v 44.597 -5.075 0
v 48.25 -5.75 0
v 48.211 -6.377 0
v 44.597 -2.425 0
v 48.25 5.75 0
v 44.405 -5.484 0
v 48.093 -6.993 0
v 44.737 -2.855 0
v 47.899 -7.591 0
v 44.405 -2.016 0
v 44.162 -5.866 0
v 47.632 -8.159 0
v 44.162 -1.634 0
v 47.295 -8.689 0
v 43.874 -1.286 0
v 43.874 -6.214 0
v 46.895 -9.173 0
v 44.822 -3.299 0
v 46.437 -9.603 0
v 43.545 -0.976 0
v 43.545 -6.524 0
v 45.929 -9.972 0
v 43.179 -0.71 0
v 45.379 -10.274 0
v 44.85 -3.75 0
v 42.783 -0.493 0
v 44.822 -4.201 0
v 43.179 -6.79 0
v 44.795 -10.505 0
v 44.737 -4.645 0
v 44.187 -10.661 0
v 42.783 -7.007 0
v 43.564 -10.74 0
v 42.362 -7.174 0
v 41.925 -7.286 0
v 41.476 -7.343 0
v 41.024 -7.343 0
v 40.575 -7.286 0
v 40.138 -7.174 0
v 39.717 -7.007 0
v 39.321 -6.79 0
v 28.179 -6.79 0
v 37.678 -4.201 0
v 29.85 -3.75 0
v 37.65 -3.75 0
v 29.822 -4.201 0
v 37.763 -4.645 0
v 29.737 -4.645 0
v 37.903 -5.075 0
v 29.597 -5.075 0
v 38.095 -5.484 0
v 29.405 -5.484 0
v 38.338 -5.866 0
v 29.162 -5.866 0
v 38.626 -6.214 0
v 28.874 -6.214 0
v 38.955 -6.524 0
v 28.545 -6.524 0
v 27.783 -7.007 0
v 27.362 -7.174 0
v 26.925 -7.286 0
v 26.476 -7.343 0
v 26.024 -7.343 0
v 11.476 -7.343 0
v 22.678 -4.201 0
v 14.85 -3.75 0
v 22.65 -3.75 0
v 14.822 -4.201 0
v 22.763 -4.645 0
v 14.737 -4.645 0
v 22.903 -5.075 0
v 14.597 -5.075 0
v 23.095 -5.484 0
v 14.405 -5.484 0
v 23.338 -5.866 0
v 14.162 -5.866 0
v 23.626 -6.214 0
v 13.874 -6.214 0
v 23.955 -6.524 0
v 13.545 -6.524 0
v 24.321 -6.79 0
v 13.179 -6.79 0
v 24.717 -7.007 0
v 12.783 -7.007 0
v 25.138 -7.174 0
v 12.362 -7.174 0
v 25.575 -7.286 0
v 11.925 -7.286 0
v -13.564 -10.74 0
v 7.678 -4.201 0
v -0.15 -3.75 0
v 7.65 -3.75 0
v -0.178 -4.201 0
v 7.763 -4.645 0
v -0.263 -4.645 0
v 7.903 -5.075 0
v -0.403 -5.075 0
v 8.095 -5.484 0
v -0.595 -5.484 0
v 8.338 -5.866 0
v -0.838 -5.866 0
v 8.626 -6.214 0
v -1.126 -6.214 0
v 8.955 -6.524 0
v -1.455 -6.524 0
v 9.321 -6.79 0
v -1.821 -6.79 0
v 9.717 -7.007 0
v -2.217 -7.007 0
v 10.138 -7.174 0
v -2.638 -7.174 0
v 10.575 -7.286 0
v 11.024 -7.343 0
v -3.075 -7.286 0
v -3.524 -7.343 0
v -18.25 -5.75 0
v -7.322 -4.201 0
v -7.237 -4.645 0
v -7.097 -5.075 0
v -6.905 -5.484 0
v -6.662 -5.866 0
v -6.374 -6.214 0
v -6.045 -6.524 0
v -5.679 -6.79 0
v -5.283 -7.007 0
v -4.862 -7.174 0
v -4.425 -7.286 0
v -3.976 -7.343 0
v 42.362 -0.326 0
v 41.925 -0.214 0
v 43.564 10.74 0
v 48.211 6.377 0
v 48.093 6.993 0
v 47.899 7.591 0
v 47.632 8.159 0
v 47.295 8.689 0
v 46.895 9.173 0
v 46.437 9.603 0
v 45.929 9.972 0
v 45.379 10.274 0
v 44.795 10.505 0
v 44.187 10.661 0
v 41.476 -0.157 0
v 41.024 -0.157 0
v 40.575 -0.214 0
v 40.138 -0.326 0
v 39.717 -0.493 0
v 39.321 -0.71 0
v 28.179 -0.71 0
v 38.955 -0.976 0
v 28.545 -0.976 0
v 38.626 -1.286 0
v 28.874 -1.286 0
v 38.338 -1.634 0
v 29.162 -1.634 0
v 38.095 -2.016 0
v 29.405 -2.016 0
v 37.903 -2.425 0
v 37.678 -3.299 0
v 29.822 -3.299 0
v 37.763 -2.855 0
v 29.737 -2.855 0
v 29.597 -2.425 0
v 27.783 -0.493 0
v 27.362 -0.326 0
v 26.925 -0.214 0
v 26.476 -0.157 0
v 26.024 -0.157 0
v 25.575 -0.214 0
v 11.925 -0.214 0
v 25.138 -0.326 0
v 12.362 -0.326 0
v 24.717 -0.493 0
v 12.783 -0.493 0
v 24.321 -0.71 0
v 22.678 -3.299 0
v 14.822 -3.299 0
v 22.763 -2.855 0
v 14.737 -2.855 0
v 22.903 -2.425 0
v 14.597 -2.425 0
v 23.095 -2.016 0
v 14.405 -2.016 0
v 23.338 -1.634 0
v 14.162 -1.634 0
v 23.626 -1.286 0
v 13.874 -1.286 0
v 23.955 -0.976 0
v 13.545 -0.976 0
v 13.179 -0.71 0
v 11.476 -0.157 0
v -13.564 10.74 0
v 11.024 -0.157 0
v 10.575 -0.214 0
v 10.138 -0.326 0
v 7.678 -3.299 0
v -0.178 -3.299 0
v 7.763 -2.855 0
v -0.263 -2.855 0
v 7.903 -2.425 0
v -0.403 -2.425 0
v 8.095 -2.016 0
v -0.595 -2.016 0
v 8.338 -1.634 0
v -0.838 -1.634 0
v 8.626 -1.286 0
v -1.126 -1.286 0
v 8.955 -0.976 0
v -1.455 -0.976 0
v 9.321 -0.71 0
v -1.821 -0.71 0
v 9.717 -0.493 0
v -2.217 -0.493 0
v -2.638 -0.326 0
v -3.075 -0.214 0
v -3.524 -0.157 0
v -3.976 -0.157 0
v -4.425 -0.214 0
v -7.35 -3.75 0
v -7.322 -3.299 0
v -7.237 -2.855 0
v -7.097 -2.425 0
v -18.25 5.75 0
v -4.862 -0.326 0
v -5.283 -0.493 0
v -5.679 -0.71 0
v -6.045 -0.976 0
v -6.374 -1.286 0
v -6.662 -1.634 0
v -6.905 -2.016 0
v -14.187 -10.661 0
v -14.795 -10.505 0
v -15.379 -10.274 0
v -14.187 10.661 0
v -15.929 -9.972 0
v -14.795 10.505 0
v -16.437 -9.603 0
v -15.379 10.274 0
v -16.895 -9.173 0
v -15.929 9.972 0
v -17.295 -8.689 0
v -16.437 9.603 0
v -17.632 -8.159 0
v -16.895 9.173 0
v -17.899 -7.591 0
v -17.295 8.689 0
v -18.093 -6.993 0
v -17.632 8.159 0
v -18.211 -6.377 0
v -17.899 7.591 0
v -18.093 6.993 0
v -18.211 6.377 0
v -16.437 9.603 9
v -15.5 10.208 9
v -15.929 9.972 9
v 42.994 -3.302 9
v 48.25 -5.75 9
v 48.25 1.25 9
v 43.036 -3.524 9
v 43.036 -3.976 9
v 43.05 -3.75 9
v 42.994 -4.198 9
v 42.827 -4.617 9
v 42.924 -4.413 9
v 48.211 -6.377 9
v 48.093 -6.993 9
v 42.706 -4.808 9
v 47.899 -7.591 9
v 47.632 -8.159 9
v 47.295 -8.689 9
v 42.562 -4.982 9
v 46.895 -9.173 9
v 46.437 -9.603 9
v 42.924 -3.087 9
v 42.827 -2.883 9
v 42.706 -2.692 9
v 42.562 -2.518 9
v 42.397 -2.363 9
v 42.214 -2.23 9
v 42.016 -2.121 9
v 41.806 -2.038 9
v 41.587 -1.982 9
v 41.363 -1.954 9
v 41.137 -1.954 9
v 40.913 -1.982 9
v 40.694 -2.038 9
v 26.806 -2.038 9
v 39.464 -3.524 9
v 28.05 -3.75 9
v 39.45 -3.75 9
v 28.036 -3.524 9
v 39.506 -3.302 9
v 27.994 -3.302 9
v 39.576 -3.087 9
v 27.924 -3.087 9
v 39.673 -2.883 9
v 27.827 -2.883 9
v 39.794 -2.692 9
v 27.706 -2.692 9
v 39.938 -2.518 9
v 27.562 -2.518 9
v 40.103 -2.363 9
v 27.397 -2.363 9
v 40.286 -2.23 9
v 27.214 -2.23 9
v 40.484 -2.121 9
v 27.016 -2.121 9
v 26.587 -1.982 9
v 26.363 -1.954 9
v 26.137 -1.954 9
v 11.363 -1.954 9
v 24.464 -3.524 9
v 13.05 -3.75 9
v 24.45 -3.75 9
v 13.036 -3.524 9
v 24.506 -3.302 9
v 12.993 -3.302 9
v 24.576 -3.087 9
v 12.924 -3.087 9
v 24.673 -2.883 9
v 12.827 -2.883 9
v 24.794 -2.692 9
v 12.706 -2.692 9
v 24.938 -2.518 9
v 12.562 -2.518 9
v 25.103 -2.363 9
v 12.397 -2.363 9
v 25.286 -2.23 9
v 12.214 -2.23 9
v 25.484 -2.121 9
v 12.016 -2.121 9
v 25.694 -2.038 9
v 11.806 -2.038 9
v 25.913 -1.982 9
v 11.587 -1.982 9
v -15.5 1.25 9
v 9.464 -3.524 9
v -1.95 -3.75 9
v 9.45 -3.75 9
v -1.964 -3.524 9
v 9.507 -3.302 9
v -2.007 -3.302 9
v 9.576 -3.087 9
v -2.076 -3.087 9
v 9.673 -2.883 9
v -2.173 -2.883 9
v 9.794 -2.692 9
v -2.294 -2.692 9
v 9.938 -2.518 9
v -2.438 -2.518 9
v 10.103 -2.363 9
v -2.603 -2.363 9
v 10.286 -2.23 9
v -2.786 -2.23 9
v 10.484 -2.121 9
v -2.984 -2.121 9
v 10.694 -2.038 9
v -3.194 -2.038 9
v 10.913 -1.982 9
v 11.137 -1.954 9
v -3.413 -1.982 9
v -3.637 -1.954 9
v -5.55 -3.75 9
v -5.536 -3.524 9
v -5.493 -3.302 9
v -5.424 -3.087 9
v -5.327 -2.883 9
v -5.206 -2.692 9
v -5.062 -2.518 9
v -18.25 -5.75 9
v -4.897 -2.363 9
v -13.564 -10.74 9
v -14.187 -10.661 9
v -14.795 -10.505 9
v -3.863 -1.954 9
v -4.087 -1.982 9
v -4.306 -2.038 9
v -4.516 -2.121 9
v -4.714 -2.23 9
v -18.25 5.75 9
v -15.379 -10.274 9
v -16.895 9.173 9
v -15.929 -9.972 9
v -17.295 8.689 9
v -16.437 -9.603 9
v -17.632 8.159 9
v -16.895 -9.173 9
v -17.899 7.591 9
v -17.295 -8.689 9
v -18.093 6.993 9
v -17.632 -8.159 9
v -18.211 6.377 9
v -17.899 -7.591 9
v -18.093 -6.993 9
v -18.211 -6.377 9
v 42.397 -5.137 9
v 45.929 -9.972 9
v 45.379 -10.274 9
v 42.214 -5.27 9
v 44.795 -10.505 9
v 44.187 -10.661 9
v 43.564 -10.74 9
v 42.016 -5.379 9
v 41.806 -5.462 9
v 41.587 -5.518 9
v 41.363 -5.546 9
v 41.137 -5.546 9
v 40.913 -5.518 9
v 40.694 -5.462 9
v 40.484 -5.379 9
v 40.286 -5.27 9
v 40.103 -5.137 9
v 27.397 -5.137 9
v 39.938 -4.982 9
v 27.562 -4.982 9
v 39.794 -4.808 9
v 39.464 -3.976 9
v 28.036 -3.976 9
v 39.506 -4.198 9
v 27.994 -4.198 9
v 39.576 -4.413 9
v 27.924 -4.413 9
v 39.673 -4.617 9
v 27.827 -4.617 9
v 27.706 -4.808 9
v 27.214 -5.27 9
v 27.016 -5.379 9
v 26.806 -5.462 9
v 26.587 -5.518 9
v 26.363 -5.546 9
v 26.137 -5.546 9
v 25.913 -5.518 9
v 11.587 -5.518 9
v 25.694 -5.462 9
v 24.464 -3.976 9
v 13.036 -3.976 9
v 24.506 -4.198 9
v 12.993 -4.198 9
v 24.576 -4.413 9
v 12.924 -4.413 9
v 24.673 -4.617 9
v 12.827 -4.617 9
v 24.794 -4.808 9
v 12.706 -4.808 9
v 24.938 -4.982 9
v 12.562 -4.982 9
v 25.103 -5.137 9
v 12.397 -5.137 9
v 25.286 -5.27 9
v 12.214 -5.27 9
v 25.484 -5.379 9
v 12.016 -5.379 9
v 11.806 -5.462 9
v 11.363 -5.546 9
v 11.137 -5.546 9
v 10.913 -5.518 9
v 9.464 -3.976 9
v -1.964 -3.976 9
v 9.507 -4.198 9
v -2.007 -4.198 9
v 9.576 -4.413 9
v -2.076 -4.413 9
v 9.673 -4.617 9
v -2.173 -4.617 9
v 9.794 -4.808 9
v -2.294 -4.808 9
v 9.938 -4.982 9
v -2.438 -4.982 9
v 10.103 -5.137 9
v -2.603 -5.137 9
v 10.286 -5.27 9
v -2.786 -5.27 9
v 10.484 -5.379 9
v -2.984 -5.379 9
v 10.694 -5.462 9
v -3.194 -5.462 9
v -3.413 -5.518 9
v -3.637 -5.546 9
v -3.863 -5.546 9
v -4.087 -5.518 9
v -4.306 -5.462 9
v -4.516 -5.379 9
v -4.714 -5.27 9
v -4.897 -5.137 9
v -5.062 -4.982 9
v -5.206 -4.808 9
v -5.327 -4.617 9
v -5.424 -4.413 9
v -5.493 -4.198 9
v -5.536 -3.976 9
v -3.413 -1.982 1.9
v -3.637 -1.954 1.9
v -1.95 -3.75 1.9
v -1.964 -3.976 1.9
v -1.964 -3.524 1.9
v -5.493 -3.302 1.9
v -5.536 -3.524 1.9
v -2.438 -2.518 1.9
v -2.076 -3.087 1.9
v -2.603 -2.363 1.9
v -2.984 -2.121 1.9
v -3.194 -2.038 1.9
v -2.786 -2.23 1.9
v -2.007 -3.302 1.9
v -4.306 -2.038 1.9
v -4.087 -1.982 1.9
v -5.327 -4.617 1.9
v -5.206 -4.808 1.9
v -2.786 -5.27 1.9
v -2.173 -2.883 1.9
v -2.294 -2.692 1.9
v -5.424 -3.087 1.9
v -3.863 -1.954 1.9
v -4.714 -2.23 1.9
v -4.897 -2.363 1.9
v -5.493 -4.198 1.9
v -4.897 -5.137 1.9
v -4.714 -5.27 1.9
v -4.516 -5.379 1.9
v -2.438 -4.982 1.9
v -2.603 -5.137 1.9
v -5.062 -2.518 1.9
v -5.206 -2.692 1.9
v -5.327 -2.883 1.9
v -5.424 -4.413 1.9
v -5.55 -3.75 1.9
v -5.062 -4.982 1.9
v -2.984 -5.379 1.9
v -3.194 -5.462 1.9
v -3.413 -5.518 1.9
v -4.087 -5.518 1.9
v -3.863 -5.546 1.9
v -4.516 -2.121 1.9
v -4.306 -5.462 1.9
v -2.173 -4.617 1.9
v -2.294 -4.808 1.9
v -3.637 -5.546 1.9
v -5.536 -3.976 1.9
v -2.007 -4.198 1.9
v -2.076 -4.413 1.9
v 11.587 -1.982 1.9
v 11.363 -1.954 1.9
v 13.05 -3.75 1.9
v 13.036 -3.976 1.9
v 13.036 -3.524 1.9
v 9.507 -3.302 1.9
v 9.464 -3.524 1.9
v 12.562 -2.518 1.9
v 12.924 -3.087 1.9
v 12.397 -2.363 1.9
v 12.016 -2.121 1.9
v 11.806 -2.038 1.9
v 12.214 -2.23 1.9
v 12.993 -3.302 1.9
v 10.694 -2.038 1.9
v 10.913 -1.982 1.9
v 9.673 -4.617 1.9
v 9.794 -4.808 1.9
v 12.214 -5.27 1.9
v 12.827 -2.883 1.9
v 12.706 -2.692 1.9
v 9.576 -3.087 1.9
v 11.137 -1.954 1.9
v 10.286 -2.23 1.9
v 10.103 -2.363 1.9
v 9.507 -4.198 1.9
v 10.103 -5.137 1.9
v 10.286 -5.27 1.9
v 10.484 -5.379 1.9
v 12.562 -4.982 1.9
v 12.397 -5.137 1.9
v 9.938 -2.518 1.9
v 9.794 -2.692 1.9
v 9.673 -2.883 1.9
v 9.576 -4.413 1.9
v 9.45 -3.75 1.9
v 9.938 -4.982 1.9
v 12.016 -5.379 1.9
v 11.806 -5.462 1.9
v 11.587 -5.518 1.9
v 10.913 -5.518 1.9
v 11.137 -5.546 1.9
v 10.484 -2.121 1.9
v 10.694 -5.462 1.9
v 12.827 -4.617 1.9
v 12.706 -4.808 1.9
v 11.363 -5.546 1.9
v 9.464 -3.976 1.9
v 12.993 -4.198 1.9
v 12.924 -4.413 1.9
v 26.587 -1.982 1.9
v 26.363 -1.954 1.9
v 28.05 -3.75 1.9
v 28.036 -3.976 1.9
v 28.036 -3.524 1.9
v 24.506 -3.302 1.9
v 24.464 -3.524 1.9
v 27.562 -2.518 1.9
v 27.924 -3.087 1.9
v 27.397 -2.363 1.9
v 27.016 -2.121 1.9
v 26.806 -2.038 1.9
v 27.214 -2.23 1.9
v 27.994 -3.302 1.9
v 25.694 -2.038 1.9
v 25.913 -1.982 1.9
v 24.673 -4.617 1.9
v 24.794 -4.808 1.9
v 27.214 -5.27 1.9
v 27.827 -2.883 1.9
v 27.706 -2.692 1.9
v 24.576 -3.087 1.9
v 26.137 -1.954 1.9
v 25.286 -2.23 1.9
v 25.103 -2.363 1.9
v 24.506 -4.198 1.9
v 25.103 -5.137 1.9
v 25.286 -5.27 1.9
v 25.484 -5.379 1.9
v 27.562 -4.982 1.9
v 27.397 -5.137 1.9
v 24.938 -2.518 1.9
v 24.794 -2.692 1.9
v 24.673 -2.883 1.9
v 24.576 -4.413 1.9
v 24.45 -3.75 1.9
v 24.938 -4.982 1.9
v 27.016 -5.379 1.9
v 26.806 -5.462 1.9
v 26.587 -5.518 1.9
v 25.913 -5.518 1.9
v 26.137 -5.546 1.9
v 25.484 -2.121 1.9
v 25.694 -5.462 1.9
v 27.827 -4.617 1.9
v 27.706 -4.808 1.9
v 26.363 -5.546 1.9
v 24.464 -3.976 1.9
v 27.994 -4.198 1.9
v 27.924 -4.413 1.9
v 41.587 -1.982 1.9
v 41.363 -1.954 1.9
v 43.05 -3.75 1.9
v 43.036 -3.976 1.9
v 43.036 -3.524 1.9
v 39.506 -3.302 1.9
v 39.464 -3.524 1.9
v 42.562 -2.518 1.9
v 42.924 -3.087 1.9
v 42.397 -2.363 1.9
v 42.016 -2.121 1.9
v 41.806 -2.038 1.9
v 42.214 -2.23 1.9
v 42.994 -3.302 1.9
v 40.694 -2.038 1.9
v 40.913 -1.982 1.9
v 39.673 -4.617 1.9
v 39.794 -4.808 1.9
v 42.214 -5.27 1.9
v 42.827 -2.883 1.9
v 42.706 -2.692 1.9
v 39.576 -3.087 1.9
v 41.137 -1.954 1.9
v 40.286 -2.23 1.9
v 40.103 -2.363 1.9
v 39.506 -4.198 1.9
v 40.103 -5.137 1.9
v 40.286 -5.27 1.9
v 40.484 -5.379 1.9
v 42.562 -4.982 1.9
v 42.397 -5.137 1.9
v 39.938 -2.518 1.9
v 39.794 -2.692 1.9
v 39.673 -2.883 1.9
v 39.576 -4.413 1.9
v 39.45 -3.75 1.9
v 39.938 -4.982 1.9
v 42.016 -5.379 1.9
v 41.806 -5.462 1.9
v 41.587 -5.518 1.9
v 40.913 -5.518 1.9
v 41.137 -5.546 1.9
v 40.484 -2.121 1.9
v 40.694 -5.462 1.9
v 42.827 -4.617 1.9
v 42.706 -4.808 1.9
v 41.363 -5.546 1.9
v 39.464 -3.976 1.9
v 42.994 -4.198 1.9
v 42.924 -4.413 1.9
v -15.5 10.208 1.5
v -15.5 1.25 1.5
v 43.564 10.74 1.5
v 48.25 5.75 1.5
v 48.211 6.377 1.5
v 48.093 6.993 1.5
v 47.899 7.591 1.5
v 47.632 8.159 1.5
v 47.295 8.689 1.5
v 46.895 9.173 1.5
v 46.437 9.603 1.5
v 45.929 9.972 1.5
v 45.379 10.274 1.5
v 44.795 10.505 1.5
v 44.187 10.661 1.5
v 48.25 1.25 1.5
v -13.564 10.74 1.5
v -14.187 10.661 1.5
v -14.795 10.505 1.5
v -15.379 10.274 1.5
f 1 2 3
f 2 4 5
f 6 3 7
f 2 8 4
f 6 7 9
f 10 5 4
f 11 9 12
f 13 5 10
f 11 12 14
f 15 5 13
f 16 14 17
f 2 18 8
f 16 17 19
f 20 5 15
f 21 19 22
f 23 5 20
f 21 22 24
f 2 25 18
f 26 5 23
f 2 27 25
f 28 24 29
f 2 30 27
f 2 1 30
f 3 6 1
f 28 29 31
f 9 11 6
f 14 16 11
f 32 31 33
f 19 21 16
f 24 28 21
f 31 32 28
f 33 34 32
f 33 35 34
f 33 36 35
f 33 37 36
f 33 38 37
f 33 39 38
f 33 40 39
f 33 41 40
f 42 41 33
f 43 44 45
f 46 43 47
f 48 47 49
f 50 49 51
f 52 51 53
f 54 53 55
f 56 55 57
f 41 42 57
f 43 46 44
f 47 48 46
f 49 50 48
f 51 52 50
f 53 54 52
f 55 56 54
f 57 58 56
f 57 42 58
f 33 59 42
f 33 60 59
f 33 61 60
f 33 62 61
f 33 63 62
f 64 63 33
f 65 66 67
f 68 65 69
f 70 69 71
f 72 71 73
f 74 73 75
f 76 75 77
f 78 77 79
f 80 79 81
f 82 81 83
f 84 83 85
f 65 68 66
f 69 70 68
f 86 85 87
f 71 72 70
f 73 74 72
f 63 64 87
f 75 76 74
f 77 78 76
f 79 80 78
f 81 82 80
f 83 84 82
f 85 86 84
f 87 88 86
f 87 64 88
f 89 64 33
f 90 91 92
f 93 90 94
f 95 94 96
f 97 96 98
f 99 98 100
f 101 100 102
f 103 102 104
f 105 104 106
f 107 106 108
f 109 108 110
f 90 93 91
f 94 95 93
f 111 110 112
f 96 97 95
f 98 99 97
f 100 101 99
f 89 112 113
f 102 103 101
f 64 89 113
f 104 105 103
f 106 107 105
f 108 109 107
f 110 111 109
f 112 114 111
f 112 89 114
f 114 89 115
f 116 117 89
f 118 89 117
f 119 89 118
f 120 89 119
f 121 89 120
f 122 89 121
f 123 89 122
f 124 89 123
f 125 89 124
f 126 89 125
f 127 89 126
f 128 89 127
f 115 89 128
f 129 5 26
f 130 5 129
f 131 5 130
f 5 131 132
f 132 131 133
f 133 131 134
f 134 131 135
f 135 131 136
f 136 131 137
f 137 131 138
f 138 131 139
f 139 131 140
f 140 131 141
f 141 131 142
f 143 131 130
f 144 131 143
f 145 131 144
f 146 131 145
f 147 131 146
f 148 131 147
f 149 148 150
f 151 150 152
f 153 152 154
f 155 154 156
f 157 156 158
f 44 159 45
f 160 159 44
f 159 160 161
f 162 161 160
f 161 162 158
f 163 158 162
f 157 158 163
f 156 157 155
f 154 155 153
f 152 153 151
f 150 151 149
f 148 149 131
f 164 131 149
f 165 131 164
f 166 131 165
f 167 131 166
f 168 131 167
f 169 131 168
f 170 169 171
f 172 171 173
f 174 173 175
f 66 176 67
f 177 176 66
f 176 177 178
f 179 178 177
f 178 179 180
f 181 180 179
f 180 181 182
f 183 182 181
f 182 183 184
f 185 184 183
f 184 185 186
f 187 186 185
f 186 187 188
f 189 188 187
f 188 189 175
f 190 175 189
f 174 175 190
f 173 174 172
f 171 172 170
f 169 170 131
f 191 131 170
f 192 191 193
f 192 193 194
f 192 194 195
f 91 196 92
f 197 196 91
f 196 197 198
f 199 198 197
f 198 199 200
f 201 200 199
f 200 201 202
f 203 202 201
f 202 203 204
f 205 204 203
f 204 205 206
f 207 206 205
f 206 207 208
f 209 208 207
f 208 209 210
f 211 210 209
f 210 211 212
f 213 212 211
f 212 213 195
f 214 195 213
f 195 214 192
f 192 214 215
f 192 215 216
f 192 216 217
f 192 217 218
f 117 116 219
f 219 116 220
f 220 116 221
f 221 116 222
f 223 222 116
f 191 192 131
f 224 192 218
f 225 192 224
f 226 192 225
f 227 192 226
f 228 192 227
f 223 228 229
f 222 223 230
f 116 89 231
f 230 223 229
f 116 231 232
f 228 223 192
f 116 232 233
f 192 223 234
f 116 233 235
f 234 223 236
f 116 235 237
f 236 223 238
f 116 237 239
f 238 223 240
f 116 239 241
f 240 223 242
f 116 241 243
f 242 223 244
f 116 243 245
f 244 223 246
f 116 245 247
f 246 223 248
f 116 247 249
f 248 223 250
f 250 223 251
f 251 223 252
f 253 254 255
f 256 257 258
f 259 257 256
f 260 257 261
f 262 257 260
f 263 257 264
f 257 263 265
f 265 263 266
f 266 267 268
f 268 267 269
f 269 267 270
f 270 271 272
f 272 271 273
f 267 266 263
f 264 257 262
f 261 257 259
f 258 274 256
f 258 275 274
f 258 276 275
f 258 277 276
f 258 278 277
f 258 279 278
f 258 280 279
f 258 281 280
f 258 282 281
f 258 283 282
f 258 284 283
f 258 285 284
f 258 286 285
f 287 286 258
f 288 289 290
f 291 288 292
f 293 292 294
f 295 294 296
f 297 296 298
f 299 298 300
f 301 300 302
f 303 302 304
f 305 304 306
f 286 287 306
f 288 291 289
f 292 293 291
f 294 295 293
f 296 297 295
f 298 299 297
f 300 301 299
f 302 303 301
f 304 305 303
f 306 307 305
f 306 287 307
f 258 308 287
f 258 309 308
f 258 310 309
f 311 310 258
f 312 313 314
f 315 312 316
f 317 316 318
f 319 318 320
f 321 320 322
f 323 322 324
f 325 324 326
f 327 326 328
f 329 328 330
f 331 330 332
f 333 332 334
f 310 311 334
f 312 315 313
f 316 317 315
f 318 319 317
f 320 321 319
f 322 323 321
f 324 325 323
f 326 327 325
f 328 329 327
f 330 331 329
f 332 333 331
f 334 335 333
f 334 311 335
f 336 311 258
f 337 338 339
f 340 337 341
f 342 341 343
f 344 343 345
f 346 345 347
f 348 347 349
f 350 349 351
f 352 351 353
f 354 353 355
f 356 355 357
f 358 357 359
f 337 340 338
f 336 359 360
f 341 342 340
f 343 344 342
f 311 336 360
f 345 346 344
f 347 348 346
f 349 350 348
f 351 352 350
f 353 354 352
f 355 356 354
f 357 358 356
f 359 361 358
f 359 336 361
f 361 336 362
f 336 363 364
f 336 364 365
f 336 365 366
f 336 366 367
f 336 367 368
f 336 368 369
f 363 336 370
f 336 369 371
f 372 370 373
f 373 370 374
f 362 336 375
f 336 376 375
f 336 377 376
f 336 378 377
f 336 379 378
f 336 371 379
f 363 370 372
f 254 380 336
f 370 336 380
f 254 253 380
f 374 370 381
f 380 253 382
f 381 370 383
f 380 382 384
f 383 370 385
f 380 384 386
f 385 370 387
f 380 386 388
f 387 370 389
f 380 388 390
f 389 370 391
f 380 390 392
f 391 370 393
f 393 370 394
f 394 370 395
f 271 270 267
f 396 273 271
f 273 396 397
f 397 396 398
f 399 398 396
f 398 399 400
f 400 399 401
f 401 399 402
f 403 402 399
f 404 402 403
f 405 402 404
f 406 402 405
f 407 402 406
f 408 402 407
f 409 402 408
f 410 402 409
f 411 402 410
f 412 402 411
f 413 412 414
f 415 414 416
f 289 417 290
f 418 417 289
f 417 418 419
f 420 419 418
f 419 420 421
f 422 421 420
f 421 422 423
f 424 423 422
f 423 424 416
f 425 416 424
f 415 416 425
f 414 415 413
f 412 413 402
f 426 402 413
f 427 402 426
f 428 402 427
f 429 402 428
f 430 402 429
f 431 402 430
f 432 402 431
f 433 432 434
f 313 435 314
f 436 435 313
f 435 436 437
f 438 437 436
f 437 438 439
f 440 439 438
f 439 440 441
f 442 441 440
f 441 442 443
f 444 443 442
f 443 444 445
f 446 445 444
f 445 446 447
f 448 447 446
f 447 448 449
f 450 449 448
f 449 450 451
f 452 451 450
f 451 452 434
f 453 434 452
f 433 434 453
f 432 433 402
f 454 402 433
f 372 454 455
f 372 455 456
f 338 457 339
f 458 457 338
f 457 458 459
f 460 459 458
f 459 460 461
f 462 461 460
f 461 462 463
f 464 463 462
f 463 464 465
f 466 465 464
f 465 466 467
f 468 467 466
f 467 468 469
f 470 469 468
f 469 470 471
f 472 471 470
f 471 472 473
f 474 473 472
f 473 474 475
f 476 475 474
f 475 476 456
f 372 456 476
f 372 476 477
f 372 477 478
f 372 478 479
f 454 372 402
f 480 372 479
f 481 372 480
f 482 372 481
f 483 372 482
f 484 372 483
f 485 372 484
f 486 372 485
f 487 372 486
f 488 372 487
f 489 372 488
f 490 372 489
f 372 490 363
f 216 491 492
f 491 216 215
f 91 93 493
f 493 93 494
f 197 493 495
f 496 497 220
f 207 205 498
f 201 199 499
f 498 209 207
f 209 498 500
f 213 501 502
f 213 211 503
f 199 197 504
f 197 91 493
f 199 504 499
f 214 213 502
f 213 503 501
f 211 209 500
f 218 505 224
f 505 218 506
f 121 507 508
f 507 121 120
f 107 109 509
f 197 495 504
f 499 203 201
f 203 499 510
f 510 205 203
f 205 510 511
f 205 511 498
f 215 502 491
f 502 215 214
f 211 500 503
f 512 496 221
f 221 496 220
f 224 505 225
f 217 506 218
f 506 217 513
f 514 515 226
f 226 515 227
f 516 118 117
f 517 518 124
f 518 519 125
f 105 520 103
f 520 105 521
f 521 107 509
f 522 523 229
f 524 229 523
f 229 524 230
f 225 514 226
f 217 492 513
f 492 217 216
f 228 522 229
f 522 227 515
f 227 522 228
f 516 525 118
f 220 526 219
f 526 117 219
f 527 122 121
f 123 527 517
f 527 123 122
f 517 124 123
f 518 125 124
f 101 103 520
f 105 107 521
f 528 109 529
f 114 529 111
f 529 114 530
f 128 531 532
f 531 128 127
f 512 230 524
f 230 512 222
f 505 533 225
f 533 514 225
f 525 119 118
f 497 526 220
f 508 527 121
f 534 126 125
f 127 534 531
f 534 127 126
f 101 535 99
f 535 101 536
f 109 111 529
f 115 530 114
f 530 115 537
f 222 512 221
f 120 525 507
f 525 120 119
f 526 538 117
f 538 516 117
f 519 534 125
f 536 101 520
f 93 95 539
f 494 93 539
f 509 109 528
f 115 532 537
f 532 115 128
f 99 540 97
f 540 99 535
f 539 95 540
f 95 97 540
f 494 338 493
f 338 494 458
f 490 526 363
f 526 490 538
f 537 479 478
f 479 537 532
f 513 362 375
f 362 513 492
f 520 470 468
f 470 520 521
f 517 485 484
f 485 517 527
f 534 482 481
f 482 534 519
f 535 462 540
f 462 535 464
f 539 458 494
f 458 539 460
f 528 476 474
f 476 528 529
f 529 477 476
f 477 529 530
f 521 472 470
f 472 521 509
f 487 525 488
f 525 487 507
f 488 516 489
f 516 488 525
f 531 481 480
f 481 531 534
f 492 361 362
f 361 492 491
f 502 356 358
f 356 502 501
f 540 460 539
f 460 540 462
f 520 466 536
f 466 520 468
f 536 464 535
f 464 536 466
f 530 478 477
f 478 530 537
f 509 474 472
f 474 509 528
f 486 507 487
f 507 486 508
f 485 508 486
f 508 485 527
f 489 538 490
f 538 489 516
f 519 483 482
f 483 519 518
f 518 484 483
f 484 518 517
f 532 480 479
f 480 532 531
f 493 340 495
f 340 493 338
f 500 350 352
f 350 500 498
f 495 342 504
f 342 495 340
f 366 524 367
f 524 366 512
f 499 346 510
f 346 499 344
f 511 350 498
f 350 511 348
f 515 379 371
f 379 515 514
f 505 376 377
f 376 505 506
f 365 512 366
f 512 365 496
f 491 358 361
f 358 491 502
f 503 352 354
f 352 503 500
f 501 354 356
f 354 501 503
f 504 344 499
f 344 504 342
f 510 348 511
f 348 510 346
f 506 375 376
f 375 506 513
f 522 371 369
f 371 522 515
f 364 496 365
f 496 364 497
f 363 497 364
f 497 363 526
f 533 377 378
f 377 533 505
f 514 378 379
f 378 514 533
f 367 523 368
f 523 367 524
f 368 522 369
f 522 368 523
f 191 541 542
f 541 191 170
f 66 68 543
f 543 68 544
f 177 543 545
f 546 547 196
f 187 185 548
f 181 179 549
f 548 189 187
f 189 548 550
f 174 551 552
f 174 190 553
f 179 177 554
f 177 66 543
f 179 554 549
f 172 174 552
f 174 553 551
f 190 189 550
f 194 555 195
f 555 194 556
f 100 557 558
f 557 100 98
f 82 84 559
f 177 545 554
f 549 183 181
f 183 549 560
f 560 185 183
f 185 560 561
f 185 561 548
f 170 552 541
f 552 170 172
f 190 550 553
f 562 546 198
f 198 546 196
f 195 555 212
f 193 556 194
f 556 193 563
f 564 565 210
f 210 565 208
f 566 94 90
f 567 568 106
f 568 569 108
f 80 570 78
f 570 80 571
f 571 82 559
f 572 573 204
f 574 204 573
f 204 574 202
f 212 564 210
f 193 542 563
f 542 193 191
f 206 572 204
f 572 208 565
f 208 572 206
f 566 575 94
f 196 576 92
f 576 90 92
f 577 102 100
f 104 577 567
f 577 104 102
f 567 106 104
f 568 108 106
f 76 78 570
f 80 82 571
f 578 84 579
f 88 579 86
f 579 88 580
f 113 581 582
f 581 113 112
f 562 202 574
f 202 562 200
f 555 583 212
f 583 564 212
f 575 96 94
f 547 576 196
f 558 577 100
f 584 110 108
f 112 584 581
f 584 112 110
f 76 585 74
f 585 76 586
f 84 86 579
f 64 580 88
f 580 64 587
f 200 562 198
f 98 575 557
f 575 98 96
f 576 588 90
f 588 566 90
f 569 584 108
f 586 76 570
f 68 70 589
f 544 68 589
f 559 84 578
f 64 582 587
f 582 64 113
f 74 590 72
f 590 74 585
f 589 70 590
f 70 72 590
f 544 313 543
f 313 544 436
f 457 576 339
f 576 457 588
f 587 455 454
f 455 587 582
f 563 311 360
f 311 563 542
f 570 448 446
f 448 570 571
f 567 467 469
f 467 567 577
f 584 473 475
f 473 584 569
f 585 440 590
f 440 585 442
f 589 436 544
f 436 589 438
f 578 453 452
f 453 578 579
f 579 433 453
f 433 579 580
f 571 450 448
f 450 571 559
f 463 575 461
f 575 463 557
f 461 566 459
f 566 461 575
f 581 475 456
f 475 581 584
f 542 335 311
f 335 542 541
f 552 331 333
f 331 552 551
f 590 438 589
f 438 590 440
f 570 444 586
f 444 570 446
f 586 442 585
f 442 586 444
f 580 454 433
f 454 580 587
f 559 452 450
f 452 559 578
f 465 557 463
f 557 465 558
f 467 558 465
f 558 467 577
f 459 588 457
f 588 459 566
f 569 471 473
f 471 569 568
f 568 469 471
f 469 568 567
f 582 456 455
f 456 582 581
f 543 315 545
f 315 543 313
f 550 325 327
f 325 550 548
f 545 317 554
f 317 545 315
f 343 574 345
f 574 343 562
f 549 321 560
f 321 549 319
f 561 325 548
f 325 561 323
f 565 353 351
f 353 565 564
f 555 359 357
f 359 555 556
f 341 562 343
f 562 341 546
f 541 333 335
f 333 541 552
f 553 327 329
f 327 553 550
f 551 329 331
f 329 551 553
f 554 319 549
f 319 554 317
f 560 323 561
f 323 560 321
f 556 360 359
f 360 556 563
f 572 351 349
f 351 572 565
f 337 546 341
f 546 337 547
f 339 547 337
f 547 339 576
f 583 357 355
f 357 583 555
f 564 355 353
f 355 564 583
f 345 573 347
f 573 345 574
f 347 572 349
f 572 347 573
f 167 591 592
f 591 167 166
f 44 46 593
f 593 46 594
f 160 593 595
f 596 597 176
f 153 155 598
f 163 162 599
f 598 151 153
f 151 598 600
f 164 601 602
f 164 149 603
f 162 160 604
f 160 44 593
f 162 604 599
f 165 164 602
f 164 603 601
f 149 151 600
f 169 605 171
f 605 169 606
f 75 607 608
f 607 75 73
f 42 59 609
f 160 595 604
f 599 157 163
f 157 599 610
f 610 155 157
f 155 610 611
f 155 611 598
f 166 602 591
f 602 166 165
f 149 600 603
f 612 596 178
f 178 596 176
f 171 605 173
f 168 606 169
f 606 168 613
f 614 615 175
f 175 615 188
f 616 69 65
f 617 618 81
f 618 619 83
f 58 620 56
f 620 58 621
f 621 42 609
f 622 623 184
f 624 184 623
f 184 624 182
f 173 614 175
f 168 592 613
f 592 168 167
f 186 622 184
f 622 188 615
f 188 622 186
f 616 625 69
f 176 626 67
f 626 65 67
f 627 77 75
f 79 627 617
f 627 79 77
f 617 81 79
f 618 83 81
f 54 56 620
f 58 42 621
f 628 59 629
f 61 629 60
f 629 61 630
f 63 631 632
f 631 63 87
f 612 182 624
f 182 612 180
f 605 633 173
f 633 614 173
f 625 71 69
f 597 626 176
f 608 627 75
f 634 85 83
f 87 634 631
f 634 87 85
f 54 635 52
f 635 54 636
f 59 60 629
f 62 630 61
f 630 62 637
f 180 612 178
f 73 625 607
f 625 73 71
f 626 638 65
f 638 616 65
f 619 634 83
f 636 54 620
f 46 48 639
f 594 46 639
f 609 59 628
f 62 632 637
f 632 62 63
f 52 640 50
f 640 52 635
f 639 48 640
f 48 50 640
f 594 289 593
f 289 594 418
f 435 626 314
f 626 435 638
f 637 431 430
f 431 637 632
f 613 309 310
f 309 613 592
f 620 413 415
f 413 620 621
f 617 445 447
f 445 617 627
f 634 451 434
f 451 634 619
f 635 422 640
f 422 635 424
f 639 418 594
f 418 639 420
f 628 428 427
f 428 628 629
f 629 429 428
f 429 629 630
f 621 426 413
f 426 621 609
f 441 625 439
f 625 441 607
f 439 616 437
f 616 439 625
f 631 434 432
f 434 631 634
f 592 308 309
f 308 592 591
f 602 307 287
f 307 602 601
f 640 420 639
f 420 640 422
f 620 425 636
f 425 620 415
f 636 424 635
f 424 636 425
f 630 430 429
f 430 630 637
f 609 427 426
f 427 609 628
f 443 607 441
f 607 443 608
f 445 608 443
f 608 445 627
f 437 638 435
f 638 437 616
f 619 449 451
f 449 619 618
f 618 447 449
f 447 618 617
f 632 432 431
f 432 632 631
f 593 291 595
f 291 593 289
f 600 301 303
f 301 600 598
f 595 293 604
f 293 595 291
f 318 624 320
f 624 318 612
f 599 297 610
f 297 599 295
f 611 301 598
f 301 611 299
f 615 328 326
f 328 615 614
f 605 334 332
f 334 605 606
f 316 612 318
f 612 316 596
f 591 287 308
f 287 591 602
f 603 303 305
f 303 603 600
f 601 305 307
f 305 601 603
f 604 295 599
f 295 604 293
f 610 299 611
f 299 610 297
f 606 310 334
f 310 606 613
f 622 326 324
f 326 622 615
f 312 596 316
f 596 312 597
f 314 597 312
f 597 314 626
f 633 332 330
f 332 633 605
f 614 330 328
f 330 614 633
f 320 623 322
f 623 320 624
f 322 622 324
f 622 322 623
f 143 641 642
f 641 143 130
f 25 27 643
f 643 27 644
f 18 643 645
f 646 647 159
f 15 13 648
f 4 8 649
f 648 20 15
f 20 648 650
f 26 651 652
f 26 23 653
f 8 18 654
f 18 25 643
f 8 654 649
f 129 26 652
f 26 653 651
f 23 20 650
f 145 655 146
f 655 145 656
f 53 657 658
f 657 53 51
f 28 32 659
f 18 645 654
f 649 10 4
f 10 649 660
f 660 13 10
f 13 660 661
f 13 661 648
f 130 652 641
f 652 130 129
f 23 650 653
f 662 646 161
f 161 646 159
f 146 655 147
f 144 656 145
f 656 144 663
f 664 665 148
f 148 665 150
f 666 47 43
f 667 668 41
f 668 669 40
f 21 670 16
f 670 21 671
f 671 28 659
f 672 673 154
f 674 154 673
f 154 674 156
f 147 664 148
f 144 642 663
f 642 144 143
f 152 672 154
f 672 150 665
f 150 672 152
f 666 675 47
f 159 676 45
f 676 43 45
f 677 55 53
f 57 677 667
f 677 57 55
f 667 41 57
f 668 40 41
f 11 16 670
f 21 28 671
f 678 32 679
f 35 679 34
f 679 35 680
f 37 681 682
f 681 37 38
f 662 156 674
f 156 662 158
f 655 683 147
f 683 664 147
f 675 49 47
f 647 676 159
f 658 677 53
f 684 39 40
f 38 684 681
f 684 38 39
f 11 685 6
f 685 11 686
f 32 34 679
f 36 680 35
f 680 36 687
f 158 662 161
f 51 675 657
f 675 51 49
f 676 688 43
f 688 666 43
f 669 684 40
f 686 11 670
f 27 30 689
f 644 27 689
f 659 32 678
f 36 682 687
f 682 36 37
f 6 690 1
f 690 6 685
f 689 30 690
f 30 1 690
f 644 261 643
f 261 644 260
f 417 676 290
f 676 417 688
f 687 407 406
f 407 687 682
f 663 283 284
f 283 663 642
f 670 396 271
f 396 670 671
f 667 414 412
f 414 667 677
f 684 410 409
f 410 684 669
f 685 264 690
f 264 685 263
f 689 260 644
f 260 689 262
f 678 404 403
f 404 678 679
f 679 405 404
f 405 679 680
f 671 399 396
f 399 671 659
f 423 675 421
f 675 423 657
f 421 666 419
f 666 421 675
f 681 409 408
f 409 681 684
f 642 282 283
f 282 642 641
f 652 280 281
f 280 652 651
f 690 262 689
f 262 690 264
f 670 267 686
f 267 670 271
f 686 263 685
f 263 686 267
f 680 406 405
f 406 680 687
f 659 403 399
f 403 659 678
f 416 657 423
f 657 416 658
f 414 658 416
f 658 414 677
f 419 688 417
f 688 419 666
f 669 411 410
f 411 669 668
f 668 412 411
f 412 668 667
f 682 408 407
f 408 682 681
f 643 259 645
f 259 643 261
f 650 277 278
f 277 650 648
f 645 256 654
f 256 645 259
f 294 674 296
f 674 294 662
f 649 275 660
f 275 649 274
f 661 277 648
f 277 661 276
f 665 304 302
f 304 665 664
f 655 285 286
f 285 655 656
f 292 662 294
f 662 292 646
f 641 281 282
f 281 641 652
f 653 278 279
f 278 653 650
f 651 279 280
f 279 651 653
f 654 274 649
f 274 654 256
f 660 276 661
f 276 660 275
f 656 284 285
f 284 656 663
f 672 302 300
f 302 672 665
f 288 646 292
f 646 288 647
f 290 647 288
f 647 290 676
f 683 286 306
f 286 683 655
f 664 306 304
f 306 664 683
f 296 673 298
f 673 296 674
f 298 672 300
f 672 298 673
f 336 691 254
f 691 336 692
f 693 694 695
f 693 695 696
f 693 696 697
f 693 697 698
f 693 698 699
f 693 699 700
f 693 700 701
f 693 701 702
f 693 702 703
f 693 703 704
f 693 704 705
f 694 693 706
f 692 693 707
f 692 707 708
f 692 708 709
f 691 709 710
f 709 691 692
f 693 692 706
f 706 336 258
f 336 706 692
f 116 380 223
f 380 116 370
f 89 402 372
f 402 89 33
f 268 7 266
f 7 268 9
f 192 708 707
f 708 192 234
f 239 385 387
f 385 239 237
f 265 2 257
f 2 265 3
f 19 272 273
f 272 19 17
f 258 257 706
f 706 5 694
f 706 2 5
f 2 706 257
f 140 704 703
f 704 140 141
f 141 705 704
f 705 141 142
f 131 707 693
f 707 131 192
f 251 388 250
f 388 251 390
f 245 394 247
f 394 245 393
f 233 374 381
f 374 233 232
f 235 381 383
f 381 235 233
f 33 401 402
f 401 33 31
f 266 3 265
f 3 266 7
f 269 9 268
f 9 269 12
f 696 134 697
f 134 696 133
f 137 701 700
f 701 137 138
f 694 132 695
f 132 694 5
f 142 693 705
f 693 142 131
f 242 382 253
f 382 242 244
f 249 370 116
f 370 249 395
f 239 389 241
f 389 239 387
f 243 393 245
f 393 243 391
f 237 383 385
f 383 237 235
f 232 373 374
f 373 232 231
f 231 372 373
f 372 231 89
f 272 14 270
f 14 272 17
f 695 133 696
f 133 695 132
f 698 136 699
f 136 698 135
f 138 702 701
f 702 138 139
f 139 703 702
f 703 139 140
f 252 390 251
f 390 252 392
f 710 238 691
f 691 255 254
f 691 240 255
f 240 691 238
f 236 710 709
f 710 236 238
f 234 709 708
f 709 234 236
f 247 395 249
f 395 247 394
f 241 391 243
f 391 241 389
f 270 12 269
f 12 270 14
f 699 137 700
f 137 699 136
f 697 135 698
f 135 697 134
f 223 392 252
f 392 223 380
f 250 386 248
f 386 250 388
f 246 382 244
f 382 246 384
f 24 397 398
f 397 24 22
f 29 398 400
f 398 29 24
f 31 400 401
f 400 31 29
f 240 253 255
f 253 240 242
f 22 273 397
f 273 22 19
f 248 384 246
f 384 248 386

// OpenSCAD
$fn = 50;


difference() {
	union() {
		translate(v = [15.0000000000, 0, 0]) {
			hull() {
				translate(v = [-28.2500000000, 5.7500000000, 0]) {
					cylinder(h = 9, r = 5);
				}
				translate(v = [28.2500000000, 5.7500000000, 0]) {
					cylinder(h = 9, r = 5);
				}
				translate(v = [-28.2500000000, -5.7500000000, 0]) {
					cylinder(h = 9, r = 5);
				}
				translate(v = [28.2500000000, -5.7500000000, 0]) {
					cylinder(h = 9, r = 5);
				}
			}
		}
	}
	union() {
		translate(v = [-3.7500000000, -3.7500000000, 0]) {
			rotate(a = [180, 0, 0]) {
				difference() {
					union() {
						#translate(v = [0, 0, -9.0000000000]) {
							cylinder(h = 9, r = 1.5000000000);
						}
						#translate(v = [0, 0, -1.9000000000]) {
							cylinder(h = 1.9000000000, r1 = 1.8000000000, r2 = 3.6000000000);
						}
						#translate(v = [0, 0, -9.0000000000]) {
							cylinder(h = 9, r = 1.8000000000);
						}
						#translate(v = [0, 0, -9.0000000000]) {
							cylinder(h = 9, r = 1.5000000000);
						}
					}
					union();
				}
			}
		}
		translate(v = [11.2500000000, -3.7500000000, 0]) {
			rotate(a = [180, 0, 0]) {
				difference() {
					union() {
						#translate(v = [0, 0, -9.0000000000]) {
							cylinder(h = 9, r = 1.5000000000);
						}
						#translate(v = [0, 0, -1.9000000000]) {
							cylinder(h = 1.9000000000, r1 = 1.8000000000, r2 = 3.6000000000);
						}
						#translate(v = [0, 0, -9.0000000000]) {
							cylinder(h = 9, r = 1.8000000000);
						}
						#translate(v = [0, 0, -9.0000000000]) {
							cylinder(h = 9, r = 1.5000000000);
						}
					}
					union();
				}
			}
		}
		translate(v = [26.2500000000, -3.7500000000, 0]) {
			rotate(a = [180, 0, 0]) {
				difference() {
					union() {
						#translate(v = [0, 0, -9.0000000000]) {
							cylinder(h = 9, r = 1.5000000000);
						}
						#translate(v = [0, 0, -1.9000000000]) {
							cylinder(h = 1.9000000000, r1 = 1.8000000000, r2 = 3.6000000000);
						}
						#translate(v = [0, 0, -9.0000000000]) {
							cylinder(h = 9, r = 1.8000000000);
						}
						#translate(v = [0, 0, -9.0000000000]) {
							cylinder(h = 9, r = 1.5000000000);
						}
					}
					union();
				}
			}
		}
		translate(v = [41.2500000000, -3.7500000000, 0]) {
			rotate(a = [180, 0, 0]) {
				difference() {
					union() {
						#translate(v = [0, 0, -9.0000000000]) {
							cylinder(h = 9, r = 1.5000000000);
						}
						#translate(v = [0, 0, -1.9000000000]) {
							cylinder(h = 1.9000000000, r1 = 1.8000000000, r2 = 3.6000000000);
						}
						#translate(v = [0, 0, -9.0000000000]) {
							cylinder(h = 9, r = 1.8000000000);
						}
						#translate(v = [0, 0, -9.0000000000]) {
							cylinder(h = 9, r = 1.5000000000);
						}
					}
					union();
				}
			}
		}
		#translate(v = [-15.5000000000, 1.2500000000, 1.5000000000]) {
			cube(size = [101.6000000000, 155.4000000000, 7.5000000000]);
		}
	}
}
